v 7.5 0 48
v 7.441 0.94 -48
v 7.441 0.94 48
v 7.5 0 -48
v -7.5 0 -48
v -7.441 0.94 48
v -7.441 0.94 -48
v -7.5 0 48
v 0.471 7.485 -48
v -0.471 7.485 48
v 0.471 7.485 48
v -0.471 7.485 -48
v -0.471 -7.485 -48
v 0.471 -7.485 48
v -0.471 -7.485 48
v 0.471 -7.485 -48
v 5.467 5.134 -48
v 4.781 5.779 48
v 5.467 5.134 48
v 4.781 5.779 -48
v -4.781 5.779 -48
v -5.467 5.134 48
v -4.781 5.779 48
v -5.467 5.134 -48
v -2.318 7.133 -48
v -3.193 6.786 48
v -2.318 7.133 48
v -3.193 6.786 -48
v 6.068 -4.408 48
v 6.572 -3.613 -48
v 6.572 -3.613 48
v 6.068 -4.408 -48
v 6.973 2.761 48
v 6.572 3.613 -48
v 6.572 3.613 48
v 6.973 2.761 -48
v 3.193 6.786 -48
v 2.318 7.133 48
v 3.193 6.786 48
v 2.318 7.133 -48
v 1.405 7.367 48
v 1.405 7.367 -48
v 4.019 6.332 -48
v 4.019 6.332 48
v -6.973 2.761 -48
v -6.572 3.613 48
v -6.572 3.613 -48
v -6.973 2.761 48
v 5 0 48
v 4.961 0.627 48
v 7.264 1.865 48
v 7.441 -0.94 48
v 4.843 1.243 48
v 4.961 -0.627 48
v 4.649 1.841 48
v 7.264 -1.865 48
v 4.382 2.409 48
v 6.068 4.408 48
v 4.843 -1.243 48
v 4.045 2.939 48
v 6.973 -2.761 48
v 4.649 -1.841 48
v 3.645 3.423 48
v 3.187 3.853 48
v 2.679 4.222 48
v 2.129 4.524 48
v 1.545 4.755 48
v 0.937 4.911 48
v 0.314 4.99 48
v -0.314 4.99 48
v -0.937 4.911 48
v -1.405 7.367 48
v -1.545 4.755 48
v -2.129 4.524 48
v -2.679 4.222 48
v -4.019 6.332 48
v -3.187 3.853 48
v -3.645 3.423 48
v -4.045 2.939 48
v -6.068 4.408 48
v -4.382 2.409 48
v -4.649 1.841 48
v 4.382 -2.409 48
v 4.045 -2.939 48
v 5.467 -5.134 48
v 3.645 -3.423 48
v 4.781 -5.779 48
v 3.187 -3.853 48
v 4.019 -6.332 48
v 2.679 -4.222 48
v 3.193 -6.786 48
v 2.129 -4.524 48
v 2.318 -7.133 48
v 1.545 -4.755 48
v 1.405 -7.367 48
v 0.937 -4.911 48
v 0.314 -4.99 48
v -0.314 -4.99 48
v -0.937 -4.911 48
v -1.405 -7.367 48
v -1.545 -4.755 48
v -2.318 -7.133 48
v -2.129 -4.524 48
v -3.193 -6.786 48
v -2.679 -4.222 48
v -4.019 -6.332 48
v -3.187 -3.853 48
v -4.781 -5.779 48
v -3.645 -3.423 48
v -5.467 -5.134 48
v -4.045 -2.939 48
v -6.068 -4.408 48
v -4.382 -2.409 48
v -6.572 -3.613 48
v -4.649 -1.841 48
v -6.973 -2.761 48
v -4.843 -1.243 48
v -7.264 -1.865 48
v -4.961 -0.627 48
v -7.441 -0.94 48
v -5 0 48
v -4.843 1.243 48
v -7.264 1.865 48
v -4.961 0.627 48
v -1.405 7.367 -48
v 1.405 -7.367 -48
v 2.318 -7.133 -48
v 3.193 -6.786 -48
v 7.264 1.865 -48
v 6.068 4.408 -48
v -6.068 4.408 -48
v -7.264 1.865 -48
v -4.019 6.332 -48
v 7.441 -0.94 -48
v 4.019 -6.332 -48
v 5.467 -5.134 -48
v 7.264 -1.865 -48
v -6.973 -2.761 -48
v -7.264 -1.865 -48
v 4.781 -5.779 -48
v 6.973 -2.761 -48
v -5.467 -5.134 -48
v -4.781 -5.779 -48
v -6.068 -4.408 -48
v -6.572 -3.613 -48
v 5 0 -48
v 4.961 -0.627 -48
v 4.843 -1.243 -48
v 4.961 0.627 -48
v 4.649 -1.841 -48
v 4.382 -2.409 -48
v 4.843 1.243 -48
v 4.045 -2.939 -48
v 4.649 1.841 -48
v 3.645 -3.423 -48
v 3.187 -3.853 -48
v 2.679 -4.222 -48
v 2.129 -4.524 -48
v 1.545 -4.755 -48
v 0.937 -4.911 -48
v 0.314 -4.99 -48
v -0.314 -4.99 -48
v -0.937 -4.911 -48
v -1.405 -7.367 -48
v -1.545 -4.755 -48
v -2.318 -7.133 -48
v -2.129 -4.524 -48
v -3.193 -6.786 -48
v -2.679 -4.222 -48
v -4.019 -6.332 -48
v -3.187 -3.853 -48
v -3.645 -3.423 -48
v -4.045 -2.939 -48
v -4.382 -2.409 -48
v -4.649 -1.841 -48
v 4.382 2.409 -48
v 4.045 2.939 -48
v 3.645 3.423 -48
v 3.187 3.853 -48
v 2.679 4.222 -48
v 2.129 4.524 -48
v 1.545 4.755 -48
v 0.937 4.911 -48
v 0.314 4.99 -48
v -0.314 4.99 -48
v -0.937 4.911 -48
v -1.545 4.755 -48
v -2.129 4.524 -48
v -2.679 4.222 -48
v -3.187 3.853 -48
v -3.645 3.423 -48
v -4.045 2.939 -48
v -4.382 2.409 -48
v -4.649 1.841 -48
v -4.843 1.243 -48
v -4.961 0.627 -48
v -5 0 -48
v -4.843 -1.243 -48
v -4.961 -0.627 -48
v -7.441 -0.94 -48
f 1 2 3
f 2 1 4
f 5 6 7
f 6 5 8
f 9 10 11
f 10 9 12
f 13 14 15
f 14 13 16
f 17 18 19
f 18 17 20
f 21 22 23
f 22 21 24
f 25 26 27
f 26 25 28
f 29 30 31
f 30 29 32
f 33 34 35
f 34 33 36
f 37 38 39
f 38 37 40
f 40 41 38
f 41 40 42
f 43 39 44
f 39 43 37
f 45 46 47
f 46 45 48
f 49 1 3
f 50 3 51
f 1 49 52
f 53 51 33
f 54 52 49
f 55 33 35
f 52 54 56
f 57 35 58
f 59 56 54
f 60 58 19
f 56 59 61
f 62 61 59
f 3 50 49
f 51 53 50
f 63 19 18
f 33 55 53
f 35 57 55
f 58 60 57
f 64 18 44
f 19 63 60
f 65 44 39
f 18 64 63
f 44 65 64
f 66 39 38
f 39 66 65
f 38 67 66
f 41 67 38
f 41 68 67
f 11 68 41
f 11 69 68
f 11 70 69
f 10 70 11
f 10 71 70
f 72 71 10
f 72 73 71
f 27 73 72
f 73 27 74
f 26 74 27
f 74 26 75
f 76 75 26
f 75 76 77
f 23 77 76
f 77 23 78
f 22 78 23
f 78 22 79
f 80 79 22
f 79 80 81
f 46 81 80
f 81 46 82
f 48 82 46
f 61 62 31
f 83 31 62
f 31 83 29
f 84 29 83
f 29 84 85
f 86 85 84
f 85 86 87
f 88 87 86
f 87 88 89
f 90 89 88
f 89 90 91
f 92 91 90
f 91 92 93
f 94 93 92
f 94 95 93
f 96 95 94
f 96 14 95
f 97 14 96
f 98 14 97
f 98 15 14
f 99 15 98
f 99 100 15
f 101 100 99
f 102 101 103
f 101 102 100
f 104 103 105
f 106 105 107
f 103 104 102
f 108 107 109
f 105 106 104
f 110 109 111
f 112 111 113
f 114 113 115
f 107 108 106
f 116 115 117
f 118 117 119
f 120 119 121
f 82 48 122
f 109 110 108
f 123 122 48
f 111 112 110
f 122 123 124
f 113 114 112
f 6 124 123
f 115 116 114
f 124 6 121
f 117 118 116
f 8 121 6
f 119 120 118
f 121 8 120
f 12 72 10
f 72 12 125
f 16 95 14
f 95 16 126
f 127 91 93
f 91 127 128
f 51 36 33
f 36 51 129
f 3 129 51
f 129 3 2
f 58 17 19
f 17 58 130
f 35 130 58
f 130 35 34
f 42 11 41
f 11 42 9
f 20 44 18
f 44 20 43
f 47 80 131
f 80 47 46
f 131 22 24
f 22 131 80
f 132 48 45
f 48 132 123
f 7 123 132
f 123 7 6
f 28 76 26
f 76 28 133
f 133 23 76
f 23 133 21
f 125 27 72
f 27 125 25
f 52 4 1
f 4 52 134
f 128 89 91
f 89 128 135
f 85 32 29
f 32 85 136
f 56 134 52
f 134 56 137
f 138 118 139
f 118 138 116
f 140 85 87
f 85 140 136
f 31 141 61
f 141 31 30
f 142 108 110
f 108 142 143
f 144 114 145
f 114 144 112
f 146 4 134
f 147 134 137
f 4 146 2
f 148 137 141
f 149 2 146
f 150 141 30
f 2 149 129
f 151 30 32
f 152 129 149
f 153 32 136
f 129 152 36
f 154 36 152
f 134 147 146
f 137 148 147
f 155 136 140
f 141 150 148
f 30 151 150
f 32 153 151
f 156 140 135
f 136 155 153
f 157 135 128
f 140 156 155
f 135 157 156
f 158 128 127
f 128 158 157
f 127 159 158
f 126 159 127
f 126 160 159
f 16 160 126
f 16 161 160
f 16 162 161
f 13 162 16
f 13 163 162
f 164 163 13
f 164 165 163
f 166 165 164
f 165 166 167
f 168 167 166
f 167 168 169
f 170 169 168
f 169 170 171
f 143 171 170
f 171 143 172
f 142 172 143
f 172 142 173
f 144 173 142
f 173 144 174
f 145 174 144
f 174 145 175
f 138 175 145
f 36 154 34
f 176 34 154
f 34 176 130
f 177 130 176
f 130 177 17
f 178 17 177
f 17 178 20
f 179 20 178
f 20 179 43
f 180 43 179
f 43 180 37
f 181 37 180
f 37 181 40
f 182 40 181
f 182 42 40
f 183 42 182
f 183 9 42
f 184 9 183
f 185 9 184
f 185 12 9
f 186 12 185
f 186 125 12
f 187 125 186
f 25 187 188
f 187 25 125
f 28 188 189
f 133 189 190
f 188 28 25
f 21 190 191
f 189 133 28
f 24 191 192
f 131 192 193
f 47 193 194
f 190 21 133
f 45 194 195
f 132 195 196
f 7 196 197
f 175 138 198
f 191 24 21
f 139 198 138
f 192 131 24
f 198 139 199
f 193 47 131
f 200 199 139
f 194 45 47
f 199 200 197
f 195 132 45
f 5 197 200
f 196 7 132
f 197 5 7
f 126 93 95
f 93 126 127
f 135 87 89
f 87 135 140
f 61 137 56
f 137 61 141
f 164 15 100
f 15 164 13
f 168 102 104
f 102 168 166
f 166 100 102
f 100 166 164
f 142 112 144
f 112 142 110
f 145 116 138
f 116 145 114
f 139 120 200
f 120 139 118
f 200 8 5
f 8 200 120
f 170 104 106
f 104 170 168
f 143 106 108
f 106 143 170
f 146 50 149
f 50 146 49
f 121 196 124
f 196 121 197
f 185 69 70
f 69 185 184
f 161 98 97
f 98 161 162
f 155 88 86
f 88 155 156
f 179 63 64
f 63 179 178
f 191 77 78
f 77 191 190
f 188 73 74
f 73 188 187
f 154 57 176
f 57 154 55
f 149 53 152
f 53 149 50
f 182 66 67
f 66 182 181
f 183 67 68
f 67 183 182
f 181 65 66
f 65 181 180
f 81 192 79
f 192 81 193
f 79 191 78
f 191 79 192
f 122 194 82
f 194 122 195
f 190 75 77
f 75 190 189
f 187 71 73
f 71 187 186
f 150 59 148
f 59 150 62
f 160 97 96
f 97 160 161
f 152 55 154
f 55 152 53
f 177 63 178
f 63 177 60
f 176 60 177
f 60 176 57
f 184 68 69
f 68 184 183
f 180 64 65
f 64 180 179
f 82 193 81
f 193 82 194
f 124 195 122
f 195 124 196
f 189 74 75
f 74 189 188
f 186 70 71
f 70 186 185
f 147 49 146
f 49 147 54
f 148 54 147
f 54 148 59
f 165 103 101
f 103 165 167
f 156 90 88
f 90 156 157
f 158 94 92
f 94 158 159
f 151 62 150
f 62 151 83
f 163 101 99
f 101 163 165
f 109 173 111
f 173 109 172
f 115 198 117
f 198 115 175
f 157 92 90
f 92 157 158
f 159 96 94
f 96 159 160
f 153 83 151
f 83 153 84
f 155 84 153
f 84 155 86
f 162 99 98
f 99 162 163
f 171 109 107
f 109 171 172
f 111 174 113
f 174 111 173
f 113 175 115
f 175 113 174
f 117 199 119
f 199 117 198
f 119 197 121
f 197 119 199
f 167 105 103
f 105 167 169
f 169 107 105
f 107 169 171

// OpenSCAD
$fn = 50;


difference() {
	union() {
		translate(v = [0, 0, -48.0000000000]) {
			cylinder(h = 96, r = 7.5000000000);
		}
	}
	union() {
		translate(v = [0, 0, -100.0000000000]) {
			cylinder(h = 200, r = 5);
		}
	}
}
